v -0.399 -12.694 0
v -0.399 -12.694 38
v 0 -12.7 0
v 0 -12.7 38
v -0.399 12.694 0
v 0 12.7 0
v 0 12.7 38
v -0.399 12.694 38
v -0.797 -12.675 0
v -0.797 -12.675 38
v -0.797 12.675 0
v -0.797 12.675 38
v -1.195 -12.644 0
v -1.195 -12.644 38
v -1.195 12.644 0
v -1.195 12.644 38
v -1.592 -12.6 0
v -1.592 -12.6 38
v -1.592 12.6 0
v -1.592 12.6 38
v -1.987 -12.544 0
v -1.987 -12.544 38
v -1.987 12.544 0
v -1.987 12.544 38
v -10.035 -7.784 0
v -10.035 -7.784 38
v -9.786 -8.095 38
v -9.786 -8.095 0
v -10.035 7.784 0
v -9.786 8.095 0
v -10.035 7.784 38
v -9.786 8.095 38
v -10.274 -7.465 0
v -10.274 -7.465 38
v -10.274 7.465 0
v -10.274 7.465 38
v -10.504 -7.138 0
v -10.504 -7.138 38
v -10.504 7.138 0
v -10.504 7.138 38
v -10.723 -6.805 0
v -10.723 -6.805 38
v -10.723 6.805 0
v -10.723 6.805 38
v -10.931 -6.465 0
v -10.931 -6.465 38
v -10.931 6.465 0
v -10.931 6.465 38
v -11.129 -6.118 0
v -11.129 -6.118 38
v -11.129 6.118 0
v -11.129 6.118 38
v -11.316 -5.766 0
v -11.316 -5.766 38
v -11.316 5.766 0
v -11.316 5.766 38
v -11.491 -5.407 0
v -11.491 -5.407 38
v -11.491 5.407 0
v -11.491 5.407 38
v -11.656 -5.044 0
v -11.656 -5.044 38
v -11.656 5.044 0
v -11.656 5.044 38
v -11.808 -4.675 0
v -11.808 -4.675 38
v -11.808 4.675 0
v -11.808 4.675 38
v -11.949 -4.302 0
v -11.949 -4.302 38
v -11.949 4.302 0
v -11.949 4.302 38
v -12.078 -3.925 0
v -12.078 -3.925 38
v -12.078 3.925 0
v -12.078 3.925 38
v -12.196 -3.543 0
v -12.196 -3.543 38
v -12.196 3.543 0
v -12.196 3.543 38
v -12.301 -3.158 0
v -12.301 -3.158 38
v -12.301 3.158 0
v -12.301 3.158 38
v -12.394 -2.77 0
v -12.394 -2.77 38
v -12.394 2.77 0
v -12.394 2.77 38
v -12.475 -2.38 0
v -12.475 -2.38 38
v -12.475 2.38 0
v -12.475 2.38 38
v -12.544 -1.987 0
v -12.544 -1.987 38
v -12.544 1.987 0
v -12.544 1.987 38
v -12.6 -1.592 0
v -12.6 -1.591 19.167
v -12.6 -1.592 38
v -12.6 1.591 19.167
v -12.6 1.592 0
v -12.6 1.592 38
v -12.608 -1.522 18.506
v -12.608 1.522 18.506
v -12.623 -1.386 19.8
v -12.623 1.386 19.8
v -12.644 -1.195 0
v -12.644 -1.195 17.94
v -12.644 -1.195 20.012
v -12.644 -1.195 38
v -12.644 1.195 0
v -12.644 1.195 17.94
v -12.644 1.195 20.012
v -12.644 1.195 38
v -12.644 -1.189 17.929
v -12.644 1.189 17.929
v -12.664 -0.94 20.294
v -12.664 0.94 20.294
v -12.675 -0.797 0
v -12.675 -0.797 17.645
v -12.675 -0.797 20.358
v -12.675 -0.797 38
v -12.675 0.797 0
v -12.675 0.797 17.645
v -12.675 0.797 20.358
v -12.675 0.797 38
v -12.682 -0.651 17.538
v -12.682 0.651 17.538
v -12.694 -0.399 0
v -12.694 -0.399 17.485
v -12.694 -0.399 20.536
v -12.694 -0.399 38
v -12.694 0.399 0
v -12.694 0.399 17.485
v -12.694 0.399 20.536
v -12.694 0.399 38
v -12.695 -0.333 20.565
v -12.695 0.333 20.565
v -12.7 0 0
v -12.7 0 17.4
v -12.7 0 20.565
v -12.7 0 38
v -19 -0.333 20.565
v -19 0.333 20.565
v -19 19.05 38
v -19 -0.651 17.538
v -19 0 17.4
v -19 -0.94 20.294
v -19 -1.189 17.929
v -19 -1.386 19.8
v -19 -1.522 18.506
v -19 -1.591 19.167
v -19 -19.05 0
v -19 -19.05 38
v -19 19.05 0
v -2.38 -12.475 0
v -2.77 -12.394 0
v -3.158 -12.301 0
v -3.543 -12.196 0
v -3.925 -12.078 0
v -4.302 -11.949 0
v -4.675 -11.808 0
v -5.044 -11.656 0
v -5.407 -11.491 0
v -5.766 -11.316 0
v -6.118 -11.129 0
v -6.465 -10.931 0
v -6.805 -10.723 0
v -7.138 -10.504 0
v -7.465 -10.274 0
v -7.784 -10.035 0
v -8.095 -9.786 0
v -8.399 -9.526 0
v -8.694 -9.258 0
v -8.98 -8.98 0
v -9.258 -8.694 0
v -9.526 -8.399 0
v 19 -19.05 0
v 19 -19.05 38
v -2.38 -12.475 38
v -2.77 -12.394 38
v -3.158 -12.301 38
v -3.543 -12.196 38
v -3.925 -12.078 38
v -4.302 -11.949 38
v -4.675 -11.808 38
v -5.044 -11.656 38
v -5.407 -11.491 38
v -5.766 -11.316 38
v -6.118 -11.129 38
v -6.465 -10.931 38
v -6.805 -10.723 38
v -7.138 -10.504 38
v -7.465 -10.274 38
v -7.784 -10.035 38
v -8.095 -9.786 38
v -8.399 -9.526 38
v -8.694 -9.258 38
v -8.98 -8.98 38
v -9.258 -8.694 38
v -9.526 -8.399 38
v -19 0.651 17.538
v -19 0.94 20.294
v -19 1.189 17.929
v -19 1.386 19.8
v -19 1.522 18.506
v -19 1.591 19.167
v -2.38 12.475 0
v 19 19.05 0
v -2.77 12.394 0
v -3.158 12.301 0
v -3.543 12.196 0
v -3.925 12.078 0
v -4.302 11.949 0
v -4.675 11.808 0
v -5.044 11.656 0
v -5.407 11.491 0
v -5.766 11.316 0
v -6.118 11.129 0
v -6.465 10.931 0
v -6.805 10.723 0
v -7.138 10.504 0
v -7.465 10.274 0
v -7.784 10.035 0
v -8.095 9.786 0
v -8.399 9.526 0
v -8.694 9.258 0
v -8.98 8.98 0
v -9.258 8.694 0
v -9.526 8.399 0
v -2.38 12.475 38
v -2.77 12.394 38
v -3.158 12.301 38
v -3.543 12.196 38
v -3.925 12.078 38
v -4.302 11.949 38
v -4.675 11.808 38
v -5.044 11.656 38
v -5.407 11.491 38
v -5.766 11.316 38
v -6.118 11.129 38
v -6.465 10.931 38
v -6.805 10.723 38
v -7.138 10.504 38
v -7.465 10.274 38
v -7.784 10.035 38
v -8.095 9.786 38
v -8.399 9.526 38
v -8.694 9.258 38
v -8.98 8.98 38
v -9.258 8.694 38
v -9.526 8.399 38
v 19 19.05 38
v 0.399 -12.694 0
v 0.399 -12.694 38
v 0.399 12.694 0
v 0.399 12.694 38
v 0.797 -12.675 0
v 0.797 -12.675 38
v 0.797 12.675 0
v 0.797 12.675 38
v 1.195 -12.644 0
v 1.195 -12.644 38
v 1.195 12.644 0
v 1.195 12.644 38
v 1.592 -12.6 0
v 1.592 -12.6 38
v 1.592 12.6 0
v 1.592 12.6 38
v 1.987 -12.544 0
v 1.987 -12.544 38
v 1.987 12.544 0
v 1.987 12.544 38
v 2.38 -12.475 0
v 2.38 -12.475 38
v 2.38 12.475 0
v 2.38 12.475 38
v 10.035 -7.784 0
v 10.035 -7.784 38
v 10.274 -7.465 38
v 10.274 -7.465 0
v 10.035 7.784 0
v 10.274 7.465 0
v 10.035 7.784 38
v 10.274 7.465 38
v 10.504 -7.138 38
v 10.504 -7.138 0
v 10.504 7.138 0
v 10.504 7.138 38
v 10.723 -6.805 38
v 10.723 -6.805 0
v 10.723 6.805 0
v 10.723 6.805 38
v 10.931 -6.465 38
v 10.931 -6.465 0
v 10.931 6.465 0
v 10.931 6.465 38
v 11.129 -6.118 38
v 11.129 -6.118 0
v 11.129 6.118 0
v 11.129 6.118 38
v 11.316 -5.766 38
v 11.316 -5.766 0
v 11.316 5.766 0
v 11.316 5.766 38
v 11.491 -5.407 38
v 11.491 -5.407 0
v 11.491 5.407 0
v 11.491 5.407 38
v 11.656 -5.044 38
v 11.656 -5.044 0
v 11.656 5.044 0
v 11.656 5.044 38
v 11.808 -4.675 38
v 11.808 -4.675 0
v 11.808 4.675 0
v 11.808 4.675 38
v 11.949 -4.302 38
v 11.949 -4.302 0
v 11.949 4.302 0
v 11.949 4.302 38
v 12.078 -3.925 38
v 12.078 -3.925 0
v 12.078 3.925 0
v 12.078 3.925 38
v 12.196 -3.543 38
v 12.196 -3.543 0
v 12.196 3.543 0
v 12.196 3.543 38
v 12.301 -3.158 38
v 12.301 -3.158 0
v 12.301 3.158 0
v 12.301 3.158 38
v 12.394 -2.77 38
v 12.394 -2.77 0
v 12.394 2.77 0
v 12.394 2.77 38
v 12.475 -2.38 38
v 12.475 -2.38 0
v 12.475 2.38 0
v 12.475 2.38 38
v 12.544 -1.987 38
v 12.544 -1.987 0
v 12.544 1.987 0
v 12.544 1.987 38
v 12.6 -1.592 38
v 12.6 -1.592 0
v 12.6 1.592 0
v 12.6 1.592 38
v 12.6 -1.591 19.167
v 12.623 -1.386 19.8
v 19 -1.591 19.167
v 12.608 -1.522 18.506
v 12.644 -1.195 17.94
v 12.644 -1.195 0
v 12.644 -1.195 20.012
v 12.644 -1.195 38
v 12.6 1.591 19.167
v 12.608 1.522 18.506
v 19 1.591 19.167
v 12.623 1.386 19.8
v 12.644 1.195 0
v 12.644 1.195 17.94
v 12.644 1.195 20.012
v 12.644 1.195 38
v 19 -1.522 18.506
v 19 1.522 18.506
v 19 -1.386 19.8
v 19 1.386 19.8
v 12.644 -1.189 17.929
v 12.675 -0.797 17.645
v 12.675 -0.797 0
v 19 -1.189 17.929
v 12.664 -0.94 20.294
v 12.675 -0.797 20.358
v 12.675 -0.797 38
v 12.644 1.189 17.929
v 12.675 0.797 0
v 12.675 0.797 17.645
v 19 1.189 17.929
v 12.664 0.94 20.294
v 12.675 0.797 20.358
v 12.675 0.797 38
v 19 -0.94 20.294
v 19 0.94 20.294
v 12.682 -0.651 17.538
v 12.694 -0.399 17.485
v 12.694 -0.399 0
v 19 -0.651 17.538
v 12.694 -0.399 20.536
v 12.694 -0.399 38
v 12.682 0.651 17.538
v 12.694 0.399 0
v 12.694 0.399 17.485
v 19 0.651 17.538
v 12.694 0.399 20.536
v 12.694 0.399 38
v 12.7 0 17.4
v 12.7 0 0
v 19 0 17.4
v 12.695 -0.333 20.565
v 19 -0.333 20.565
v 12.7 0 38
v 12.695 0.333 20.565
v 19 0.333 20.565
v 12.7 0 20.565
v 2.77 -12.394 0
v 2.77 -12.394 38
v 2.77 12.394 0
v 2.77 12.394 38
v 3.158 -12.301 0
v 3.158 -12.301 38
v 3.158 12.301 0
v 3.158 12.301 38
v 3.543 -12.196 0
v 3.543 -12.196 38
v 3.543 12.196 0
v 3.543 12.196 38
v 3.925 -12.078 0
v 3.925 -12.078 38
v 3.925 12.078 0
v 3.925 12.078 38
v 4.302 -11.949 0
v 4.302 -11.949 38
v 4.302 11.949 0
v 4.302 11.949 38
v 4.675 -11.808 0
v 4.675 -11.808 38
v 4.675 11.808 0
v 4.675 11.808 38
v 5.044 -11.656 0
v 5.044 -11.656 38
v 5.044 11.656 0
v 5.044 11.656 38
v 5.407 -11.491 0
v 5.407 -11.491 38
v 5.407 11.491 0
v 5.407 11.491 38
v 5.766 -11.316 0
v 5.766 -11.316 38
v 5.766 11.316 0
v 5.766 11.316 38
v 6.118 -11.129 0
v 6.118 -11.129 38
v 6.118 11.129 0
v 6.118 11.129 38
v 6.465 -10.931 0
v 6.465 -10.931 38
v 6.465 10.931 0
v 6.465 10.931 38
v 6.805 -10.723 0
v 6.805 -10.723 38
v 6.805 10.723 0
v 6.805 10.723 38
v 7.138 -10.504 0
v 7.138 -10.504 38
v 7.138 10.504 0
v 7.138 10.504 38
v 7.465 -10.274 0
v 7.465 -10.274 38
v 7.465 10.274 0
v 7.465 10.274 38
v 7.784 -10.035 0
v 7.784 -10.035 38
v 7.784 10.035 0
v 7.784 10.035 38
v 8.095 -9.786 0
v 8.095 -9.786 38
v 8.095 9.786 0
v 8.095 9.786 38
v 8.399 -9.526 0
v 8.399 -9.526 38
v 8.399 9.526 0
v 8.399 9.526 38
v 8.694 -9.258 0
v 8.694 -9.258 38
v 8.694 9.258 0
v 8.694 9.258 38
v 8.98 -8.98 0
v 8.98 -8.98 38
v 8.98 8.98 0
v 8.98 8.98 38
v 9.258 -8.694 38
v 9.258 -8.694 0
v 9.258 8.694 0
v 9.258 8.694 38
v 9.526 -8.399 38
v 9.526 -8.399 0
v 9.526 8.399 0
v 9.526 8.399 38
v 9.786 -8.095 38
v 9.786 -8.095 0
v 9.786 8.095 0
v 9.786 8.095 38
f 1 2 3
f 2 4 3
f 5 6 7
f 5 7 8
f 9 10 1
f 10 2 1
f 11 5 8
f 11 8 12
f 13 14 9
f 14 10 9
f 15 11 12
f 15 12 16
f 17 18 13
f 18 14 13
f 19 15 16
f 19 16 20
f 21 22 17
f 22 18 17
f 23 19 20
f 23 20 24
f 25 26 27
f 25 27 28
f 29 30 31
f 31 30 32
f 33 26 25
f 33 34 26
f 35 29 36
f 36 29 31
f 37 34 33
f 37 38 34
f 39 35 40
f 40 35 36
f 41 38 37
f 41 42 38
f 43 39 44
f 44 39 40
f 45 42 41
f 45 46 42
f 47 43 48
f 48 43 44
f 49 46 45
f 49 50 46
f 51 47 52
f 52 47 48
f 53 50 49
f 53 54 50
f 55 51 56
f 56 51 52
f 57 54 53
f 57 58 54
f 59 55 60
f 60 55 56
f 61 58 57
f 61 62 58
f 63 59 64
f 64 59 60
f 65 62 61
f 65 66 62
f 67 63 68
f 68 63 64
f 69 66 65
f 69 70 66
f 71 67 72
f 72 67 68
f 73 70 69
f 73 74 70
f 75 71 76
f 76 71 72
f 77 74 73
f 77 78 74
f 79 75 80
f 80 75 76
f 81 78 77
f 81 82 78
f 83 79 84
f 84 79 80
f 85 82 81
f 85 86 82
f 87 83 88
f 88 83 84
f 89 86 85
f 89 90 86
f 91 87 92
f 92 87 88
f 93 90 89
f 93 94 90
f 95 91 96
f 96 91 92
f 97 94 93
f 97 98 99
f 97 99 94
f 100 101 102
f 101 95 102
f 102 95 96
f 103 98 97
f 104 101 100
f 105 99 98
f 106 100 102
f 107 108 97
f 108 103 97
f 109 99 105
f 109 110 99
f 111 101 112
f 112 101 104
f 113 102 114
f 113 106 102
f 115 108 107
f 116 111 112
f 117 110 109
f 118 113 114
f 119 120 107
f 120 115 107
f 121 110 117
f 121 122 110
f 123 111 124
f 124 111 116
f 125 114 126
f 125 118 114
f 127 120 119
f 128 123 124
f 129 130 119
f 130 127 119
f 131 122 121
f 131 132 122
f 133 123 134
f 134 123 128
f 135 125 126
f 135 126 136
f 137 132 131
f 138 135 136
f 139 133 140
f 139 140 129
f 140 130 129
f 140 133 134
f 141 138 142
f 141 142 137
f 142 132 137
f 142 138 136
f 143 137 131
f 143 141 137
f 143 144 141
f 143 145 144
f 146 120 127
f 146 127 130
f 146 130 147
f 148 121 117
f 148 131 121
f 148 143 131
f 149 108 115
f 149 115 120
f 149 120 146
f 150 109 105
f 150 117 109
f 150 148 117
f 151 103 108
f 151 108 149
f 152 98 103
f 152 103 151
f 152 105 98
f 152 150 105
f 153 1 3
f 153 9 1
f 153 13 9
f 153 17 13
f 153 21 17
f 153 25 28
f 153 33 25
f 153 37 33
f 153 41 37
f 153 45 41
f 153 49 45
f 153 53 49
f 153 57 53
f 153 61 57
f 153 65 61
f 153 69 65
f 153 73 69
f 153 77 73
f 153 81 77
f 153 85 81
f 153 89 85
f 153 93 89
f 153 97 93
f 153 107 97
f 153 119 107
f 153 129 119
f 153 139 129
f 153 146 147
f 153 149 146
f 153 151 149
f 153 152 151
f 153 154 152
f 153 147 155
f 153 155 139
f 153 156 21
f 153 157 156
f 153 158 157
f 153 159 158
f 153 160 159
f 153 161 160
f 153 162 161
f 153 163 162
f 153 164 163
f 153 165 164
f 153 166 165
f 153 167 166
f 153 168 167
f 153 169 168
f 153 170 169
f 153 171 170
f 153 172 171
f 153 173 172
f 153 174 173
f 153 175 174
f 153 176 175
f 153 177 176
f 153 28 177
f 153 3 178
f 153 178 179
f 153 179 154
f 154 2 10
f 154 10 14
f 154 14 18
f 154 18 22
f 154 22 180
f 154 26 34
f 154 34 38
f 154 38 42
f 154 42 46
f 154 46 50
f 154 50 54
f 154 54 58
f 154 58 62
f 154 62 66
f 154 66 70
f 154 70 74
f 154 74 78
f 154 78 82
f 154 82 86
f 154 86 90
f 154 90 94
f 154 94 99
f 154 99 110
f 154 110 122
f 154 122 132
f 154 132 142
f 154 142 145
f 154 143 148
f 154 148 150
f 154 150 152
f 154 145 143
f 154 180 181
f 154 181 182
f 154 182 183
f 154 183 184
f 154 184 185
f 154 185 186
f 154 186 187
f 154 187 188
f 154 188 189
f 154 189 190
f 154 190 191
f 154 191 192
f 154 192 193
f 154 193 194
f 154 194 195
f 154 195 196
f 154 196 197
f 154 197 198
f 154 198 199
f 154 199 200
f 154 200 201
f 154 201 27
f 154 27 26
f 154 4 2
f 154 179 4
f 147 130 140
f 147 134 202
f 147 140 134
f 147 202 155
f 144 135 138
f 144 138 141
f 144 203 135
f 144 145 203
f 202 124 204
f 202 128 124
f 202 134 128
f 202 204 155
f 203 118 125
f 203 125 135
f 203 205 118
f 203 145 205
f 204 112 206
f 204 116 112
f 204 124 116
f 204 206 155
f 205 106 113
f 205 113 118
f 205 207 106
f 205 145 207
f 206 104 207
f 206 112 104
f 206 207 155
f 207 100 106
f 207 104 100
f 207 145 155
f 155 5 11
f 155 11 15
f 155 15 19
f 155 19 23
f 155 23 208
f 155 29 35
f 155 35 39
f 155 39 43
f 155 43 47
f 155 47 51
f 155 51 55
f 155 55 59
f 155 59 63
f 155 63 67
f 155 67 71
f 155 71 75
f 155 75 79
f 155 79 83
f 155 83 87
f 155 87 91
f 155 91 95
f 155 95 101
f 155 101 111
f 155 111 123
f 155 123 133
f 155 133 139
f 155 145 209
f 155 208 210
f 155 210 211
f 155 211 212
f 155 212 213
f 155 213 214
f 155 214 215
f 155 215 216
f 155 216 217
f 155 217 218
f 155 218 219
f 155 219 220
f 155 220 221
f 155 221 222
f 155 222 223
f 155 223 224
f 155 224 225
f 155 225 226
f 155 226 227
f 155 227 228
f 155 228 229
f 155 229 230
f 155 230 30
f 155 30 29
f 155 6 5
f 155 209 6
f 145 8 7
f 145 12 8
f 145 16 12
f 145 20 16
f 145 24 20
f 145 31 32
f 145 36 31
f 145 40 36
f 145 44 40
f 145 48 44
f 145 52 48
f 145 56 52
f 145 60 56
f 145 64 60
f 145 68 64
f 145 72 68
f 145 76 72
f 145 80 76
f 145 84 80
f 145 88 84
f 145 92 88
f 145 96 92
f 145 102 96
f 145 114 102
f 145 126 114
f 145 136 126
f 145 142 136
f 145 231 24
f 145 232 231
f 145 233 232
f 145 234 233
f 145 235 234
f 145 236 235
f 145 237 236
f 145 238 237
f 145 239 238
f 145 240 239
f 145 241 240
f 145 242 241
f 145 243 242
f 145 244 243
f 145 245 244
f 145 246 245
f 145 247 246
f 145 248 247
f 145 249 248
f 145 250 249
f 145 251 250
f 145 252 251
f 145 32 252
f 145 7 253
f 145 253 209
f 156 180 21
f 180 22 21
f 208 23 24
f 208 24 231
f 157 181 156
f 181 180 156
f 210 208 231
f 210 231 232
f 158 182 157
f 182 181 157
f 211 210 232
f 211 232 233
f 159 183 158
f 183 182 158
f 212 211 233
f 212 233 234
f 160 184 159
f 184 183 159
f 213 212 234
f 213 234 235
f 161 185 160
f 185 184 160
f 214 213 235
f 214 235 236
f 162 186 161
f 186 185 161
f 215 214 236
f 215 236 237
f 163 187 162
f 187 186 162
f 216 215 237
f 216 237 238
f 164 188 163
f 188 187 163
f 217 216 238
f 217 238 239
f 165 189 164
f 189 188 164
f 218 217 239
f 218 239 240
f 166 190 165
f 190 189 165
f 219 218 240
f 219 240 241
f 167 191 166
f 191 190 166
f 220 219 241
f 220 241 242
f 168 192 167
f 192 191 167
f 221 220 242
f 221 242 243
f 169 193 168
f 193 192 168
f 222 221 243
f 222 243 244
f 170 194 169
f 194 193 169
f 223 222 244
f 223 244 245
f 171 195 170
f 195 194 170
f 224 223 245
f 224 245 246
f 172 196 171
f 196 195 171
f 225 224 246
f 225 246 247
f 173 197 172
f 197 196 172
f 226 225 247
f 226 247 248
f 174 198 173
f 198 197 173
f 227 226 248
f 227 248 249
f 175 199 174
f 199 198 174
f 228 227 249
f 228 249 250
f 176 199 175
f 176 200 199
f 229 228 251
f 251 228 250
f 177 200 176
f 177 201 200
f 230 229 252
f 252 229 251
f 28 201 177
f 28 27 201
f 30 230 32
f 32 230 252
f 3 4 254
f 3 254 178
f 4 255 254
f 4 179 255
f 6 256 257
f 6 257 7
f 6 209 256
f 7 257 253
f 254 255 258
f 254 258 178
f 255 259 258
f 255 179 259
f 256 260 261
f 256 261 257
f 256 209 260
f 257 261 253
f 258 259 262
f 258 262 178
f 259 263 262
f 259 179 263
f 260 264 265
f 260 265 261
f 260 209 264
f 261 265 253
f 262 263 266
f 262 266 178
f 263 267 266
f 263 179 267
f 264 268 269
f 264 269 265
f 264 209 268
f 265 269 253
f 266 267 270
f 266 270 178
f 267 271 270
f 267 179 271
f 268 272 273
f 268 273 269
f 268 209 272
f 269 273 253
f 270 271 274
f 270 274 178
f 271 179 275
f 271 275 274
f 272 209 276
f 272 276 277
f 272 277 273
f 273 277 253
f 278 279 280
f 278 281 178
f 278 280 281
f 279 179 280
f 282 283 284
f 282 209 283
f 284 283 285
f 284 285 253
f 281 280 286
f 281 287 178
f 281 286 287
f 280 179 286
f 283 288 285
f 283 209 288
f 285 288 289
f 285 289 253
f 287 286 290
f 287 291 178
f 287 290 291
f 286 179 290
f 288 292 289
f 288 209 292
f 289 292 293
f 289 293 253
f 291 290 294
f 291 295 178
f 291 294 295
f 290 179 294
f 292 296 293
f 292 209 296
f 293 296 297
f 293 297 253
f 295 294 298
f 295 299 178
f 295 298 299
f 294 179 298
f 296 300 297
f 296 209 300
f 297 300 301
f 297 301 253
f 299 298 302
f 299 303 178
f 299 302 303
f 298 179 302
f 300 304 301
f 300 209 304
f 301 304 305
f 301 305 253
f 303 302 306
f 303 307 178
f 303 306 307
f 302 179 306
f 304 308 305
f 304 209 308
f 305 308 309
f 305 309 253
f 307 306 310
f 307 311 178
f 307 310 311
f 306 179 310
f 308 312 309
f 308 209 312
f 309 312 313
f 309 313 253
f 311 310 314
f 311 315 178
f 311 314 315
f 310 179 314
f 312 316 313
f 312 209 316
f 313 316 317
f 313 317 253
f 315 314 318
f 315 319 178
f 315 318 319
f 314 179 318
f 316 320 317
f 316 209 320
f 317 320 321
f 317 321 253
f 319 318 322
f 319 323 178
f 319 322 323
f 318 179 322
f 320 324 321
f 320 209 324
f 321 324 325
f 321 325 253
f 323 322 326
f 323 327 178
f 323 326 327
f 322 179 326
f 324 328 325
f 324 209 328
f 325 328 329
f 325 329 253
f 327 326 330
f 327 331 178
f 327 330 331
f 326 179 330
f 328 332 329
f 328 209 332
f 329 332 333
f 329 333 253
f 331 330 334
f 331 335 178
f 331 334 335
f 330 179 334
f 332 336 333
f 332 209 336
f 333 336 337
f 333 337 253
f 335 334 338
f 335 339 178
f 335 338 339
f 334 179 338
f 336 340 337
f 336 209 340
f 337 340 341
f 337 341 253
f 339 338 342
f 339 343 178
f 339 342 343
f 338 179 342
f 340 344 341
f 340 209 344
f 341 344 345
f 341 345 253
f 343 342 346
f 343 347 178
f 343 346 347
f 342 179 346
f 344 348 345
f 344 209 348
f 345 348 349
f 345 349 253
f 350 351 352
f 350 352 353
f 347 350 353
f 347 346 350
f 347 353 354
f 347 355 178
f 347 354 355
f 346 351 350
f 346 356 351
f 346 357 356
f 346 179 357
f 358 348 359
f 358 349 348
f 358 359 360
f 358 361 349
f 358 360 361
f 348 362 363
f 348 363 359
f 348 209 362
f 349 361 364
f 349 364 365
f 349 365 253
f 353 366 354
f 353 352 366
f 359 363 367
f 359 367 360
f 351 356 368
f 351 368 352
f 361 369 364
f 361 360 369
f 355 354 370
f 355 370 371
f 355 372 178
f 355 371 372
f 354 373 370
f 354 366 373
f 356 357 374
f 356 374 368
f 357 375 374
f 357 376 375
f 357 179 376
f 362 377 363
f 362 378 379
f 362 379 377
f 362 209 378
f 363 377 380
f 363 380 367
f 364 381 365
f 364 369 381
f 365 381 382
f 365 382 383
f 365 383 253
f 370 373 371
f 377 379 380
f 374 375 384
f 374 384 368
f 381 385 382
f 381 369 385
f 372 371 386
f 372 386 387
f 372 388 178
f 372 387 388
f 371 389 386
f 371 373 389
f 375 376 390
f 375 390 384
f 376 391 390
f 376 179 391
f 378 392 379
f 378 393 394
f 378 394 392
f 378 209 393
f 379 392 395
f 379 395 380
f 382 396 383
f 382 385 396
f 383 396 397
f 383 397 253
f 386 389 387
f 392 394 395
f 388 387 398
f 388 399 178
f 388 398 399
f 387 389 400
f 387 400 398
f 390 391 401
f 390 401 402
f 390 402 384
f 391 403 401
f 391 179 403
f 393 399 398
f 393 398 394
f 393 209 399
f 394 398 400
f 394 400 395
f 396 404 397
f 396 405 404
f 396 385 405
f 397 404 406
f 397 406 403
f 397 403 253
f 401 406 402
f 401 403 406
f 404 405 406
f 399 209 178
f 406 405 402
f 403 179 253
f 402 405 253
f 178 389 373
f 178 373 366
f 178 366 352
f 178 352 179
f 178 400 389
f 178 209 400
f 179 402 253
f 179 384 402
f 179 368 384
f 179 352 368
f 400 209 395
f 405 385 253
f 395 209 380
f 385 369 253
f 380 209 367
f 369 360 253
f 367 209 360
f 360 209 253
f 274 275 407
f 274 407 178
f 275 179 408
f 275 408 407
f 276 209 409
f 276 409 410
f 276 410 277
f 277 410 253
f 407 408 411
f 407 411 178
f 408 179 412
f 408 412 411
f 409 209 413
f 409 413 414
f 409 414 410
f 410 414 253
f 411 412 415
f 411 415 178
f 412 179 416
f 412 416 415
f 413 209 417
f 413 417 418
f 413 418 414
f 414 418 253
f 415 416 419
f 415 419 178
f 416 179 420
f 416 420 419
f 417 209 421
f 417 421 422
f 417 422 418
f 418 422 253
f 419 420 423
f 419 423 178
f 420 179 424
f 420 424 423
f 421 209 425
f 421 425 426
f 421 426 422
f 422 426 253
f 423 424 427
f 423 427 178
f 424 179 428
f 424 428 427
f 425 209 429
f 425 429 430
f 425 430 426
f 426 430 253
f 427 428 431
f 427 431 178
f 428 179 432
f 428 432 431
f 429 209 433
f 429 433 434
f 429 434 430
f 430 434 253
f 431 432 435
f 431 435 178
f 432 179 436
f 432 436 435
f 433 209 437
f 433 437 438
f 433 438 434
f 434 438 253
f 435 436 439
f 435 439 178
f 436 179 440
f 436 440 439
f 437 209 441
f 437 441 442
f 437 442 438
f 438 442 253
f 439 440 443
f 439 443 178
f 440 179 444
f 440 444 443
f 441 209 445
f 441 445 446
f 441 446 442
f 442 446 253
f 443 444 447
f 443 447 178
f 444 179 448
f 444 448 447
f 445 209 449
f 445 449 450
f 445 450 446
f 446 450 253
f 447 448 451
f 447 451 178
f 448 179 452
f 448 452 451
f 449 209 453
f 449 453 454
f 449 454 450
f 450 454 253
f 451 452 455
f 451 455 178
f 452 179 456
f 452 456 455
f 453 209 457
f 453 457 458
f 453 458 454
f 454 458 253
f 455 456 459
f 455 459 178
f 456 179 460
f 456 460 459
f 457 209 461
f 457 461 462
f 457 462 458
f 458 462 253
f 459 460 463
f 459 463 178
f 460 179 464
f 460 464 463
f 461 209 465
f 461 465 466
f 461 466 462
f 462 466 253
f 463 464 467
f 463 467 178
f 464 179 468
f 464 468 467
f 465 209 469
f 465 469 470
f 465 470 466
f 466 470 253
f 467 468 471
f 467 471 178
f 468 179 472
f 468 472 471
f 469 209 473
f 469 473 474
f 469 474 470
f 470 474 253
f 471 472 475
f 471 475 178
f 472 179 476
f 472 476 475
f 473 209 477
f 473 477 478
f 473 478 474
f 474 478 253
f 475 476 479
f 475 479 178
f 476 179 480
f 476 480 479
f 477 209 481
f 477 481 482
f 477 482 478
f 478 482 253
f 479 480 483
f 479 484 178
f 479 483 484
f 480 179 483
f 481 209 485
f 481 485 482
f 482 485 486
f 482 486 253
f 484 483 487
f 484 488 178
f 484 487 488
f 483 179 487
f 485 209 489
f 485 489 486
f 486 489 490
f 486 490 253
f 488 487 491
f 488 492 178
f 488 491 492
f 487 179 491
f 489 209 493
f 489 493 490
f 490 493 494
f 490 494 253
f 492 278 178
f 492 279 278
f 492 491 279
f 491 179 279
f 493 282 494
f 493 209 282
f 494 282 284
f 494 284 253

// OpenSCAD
// file: ../666_1004.scad
include <../Parameters.scad>
draft = true;

module 666_1004(coupling_wall_thickness, thickness_between_tubes, draft = true){


    width = width_666_1004;

    coupling_screw_length = coupling_screw_length_666_1004;

    coupling_width = coupling_width_666_1004;
    height=coupling_width;

    depth=main_tube_outer_diameter*2+2*coupling_wall_thickness+thickness_between_tubes;
    
    radius=main_tube_outer_diameter/2;

    bevelled_width = main_tube_outer_diameter + 2*coupling_wall_thickness;

    difference(){

        translate([-(coupling_width/2), - depth + main_tube_outer_diameter/2 + coupling_wall_thickness,0])
              cube([coupling_width,depth,height]);

        // middle cut
        translate ([-0.5, 0, - global_clearance/2])
            cube ([1,depth,height + global_clearance]);

        //tubes
        translate([0,0,- global_clearance/2])
                cylinder(h=height + global_clearance,r = main_tube_outer_diameter/2, $fn= draft ? 50 : 200);

        translate([-coupling_width/2 - global_clearance/2, -(main_tube_outer_diameter+thickness_between_tubes),height/2])
            rotate([0,90,0])
               cylinder(h=height + global_clearance,r = main_tube_outer_diameter/2, $fn = draft ? 50 : 200);
        
        //bevelled edge
        translate([bevelled_width/2+coupling_wall_thickness/sqrt(2),coupling_wall_thickness/sqrt(2),- global_clearance/2])
            rotate([0,0,45])
                cube([bevelled_width, bevelled_width,height + global_clearance]);
        
        translate([-(bevelled_width/2) - coupling_wall_thickness/sqrt(2),coupling_wall_thickness/sqrt(2),- global_clearance/2])
            rotate([0,0,45])
                cube([bevelled_width, bevelled_width,height + global_clearance]); 
        
        translate([- height/2 - global_clearance/2,- main_tube_outer_diameter/2 - thickness_between_tubes - main_tube_outer_diameter - coupling_wall_thickness - (sqrt(2)*bevelled_width)/2 - (main_tube_outer_diameter/sqrt(2))/3 - coupling_wall_thickness/sqrt(2),-coupling_wall_thickness/sqrt(2)])
            rotate([-45,0,0])
                cube([height + global_clearance,bevelled_width,bevelled_width]);
       
        translate([-coupling_width/2 - global_clearance/2,- main_tube_outer_diameter/2 - thickness_between_tubes - main_tube_outer_diameter - coupling_wall_thickness - coupling_wall_thickness/sqrt(2),height/2 + coupling_wall_thickness/sqrt(2)])  
            rotate([45,0,0])
                cube([coupling_width + global_clearance,height,height]);  

        //screw
        translate([-coupling_width/2 - global_clearance/2,0,height/2])
           rotate ([0,90,0])   
                cylinder(h = coupling_width + global_clearance, r = M3_screw_diameter/2, $fn = 15);

        translate ([0,- (main_tube_outer_diameter+thickness_between_tubes),0])
                cylinder (h = height, r = M3_screw_diameter/2, $fn = 15);
                
        //nut
        translate([-coupling_width/2 - global_clearance/2,0, height/2])
            rotate ([0,90,0])
                cylinder (h = Screw_head_height_M3 + global_clearance, r = Nut_diameter_M3/2, $fn = 6);
        
        translate([coupling_width/2 - Screw_head_height_M3,0,height/2])
           rotate ([0,90,0])
                cylinder (h = Screw_head_height_M3 + global_clearance, r = Nut_diameter_M3/2, $fn = 6);

        translate([0, -(main_tube_outer_diameter+thickness_between_tubes),- global_clearance/2])
                cylinder (h = Screw_head_height_M3 + global_clearance, r = Nut_diameter_M3/2, $fn = 6);

        translate([0,-(main_tube_outer_diameter+thickness_between_tubes),height - Screw_head_height_M3])
                cylinder (h = Screw_head_height_M3 + global_clearance, r = Nut_diameter_M3/2, $fn = 6);    
    }
}


module 666_1004_drillhelper(coupling_wall_thickness, thickness_between_tubes, draft = true){

    coupling_width = coupling_width_666_1004;
    height=coupling_width;

    depth=main_tube_outer_diameter*3;
    
    difference(){

        translate([-(coupling_width/2), -depth/4,0])
              cube([coupling_width,depth/2,height]);

        //tubes
        translate([0,0,- global_clearance/2])
                cylinder(h=height + global_clearance,r = main_tube_outer_diameter/2, $fn= draft ? 50 : 200);
        
        //screw
        translate([-coupling_width/2 - global_clearance/2,0,height/2])
           rotate ([0,90,0])   
                cylinder(h = coupling_width + global_clearance, r = M3_screw_diameter/2, $fn = 15);
                
    }
}


666_1004(coupling_wall_thickness, thickness_between_tubes, draft);

translate([50,0,0])
    666_1004_drillhelper(coupling_wall_thickness, thickness_between_tubes, draft);
// main file
include <../../Parameters.scad>

use <../666_1004.scad>

draft = false;

666_1004_drillhelper(coupling_wall_thickness, thickness_between_tubes, draft);
